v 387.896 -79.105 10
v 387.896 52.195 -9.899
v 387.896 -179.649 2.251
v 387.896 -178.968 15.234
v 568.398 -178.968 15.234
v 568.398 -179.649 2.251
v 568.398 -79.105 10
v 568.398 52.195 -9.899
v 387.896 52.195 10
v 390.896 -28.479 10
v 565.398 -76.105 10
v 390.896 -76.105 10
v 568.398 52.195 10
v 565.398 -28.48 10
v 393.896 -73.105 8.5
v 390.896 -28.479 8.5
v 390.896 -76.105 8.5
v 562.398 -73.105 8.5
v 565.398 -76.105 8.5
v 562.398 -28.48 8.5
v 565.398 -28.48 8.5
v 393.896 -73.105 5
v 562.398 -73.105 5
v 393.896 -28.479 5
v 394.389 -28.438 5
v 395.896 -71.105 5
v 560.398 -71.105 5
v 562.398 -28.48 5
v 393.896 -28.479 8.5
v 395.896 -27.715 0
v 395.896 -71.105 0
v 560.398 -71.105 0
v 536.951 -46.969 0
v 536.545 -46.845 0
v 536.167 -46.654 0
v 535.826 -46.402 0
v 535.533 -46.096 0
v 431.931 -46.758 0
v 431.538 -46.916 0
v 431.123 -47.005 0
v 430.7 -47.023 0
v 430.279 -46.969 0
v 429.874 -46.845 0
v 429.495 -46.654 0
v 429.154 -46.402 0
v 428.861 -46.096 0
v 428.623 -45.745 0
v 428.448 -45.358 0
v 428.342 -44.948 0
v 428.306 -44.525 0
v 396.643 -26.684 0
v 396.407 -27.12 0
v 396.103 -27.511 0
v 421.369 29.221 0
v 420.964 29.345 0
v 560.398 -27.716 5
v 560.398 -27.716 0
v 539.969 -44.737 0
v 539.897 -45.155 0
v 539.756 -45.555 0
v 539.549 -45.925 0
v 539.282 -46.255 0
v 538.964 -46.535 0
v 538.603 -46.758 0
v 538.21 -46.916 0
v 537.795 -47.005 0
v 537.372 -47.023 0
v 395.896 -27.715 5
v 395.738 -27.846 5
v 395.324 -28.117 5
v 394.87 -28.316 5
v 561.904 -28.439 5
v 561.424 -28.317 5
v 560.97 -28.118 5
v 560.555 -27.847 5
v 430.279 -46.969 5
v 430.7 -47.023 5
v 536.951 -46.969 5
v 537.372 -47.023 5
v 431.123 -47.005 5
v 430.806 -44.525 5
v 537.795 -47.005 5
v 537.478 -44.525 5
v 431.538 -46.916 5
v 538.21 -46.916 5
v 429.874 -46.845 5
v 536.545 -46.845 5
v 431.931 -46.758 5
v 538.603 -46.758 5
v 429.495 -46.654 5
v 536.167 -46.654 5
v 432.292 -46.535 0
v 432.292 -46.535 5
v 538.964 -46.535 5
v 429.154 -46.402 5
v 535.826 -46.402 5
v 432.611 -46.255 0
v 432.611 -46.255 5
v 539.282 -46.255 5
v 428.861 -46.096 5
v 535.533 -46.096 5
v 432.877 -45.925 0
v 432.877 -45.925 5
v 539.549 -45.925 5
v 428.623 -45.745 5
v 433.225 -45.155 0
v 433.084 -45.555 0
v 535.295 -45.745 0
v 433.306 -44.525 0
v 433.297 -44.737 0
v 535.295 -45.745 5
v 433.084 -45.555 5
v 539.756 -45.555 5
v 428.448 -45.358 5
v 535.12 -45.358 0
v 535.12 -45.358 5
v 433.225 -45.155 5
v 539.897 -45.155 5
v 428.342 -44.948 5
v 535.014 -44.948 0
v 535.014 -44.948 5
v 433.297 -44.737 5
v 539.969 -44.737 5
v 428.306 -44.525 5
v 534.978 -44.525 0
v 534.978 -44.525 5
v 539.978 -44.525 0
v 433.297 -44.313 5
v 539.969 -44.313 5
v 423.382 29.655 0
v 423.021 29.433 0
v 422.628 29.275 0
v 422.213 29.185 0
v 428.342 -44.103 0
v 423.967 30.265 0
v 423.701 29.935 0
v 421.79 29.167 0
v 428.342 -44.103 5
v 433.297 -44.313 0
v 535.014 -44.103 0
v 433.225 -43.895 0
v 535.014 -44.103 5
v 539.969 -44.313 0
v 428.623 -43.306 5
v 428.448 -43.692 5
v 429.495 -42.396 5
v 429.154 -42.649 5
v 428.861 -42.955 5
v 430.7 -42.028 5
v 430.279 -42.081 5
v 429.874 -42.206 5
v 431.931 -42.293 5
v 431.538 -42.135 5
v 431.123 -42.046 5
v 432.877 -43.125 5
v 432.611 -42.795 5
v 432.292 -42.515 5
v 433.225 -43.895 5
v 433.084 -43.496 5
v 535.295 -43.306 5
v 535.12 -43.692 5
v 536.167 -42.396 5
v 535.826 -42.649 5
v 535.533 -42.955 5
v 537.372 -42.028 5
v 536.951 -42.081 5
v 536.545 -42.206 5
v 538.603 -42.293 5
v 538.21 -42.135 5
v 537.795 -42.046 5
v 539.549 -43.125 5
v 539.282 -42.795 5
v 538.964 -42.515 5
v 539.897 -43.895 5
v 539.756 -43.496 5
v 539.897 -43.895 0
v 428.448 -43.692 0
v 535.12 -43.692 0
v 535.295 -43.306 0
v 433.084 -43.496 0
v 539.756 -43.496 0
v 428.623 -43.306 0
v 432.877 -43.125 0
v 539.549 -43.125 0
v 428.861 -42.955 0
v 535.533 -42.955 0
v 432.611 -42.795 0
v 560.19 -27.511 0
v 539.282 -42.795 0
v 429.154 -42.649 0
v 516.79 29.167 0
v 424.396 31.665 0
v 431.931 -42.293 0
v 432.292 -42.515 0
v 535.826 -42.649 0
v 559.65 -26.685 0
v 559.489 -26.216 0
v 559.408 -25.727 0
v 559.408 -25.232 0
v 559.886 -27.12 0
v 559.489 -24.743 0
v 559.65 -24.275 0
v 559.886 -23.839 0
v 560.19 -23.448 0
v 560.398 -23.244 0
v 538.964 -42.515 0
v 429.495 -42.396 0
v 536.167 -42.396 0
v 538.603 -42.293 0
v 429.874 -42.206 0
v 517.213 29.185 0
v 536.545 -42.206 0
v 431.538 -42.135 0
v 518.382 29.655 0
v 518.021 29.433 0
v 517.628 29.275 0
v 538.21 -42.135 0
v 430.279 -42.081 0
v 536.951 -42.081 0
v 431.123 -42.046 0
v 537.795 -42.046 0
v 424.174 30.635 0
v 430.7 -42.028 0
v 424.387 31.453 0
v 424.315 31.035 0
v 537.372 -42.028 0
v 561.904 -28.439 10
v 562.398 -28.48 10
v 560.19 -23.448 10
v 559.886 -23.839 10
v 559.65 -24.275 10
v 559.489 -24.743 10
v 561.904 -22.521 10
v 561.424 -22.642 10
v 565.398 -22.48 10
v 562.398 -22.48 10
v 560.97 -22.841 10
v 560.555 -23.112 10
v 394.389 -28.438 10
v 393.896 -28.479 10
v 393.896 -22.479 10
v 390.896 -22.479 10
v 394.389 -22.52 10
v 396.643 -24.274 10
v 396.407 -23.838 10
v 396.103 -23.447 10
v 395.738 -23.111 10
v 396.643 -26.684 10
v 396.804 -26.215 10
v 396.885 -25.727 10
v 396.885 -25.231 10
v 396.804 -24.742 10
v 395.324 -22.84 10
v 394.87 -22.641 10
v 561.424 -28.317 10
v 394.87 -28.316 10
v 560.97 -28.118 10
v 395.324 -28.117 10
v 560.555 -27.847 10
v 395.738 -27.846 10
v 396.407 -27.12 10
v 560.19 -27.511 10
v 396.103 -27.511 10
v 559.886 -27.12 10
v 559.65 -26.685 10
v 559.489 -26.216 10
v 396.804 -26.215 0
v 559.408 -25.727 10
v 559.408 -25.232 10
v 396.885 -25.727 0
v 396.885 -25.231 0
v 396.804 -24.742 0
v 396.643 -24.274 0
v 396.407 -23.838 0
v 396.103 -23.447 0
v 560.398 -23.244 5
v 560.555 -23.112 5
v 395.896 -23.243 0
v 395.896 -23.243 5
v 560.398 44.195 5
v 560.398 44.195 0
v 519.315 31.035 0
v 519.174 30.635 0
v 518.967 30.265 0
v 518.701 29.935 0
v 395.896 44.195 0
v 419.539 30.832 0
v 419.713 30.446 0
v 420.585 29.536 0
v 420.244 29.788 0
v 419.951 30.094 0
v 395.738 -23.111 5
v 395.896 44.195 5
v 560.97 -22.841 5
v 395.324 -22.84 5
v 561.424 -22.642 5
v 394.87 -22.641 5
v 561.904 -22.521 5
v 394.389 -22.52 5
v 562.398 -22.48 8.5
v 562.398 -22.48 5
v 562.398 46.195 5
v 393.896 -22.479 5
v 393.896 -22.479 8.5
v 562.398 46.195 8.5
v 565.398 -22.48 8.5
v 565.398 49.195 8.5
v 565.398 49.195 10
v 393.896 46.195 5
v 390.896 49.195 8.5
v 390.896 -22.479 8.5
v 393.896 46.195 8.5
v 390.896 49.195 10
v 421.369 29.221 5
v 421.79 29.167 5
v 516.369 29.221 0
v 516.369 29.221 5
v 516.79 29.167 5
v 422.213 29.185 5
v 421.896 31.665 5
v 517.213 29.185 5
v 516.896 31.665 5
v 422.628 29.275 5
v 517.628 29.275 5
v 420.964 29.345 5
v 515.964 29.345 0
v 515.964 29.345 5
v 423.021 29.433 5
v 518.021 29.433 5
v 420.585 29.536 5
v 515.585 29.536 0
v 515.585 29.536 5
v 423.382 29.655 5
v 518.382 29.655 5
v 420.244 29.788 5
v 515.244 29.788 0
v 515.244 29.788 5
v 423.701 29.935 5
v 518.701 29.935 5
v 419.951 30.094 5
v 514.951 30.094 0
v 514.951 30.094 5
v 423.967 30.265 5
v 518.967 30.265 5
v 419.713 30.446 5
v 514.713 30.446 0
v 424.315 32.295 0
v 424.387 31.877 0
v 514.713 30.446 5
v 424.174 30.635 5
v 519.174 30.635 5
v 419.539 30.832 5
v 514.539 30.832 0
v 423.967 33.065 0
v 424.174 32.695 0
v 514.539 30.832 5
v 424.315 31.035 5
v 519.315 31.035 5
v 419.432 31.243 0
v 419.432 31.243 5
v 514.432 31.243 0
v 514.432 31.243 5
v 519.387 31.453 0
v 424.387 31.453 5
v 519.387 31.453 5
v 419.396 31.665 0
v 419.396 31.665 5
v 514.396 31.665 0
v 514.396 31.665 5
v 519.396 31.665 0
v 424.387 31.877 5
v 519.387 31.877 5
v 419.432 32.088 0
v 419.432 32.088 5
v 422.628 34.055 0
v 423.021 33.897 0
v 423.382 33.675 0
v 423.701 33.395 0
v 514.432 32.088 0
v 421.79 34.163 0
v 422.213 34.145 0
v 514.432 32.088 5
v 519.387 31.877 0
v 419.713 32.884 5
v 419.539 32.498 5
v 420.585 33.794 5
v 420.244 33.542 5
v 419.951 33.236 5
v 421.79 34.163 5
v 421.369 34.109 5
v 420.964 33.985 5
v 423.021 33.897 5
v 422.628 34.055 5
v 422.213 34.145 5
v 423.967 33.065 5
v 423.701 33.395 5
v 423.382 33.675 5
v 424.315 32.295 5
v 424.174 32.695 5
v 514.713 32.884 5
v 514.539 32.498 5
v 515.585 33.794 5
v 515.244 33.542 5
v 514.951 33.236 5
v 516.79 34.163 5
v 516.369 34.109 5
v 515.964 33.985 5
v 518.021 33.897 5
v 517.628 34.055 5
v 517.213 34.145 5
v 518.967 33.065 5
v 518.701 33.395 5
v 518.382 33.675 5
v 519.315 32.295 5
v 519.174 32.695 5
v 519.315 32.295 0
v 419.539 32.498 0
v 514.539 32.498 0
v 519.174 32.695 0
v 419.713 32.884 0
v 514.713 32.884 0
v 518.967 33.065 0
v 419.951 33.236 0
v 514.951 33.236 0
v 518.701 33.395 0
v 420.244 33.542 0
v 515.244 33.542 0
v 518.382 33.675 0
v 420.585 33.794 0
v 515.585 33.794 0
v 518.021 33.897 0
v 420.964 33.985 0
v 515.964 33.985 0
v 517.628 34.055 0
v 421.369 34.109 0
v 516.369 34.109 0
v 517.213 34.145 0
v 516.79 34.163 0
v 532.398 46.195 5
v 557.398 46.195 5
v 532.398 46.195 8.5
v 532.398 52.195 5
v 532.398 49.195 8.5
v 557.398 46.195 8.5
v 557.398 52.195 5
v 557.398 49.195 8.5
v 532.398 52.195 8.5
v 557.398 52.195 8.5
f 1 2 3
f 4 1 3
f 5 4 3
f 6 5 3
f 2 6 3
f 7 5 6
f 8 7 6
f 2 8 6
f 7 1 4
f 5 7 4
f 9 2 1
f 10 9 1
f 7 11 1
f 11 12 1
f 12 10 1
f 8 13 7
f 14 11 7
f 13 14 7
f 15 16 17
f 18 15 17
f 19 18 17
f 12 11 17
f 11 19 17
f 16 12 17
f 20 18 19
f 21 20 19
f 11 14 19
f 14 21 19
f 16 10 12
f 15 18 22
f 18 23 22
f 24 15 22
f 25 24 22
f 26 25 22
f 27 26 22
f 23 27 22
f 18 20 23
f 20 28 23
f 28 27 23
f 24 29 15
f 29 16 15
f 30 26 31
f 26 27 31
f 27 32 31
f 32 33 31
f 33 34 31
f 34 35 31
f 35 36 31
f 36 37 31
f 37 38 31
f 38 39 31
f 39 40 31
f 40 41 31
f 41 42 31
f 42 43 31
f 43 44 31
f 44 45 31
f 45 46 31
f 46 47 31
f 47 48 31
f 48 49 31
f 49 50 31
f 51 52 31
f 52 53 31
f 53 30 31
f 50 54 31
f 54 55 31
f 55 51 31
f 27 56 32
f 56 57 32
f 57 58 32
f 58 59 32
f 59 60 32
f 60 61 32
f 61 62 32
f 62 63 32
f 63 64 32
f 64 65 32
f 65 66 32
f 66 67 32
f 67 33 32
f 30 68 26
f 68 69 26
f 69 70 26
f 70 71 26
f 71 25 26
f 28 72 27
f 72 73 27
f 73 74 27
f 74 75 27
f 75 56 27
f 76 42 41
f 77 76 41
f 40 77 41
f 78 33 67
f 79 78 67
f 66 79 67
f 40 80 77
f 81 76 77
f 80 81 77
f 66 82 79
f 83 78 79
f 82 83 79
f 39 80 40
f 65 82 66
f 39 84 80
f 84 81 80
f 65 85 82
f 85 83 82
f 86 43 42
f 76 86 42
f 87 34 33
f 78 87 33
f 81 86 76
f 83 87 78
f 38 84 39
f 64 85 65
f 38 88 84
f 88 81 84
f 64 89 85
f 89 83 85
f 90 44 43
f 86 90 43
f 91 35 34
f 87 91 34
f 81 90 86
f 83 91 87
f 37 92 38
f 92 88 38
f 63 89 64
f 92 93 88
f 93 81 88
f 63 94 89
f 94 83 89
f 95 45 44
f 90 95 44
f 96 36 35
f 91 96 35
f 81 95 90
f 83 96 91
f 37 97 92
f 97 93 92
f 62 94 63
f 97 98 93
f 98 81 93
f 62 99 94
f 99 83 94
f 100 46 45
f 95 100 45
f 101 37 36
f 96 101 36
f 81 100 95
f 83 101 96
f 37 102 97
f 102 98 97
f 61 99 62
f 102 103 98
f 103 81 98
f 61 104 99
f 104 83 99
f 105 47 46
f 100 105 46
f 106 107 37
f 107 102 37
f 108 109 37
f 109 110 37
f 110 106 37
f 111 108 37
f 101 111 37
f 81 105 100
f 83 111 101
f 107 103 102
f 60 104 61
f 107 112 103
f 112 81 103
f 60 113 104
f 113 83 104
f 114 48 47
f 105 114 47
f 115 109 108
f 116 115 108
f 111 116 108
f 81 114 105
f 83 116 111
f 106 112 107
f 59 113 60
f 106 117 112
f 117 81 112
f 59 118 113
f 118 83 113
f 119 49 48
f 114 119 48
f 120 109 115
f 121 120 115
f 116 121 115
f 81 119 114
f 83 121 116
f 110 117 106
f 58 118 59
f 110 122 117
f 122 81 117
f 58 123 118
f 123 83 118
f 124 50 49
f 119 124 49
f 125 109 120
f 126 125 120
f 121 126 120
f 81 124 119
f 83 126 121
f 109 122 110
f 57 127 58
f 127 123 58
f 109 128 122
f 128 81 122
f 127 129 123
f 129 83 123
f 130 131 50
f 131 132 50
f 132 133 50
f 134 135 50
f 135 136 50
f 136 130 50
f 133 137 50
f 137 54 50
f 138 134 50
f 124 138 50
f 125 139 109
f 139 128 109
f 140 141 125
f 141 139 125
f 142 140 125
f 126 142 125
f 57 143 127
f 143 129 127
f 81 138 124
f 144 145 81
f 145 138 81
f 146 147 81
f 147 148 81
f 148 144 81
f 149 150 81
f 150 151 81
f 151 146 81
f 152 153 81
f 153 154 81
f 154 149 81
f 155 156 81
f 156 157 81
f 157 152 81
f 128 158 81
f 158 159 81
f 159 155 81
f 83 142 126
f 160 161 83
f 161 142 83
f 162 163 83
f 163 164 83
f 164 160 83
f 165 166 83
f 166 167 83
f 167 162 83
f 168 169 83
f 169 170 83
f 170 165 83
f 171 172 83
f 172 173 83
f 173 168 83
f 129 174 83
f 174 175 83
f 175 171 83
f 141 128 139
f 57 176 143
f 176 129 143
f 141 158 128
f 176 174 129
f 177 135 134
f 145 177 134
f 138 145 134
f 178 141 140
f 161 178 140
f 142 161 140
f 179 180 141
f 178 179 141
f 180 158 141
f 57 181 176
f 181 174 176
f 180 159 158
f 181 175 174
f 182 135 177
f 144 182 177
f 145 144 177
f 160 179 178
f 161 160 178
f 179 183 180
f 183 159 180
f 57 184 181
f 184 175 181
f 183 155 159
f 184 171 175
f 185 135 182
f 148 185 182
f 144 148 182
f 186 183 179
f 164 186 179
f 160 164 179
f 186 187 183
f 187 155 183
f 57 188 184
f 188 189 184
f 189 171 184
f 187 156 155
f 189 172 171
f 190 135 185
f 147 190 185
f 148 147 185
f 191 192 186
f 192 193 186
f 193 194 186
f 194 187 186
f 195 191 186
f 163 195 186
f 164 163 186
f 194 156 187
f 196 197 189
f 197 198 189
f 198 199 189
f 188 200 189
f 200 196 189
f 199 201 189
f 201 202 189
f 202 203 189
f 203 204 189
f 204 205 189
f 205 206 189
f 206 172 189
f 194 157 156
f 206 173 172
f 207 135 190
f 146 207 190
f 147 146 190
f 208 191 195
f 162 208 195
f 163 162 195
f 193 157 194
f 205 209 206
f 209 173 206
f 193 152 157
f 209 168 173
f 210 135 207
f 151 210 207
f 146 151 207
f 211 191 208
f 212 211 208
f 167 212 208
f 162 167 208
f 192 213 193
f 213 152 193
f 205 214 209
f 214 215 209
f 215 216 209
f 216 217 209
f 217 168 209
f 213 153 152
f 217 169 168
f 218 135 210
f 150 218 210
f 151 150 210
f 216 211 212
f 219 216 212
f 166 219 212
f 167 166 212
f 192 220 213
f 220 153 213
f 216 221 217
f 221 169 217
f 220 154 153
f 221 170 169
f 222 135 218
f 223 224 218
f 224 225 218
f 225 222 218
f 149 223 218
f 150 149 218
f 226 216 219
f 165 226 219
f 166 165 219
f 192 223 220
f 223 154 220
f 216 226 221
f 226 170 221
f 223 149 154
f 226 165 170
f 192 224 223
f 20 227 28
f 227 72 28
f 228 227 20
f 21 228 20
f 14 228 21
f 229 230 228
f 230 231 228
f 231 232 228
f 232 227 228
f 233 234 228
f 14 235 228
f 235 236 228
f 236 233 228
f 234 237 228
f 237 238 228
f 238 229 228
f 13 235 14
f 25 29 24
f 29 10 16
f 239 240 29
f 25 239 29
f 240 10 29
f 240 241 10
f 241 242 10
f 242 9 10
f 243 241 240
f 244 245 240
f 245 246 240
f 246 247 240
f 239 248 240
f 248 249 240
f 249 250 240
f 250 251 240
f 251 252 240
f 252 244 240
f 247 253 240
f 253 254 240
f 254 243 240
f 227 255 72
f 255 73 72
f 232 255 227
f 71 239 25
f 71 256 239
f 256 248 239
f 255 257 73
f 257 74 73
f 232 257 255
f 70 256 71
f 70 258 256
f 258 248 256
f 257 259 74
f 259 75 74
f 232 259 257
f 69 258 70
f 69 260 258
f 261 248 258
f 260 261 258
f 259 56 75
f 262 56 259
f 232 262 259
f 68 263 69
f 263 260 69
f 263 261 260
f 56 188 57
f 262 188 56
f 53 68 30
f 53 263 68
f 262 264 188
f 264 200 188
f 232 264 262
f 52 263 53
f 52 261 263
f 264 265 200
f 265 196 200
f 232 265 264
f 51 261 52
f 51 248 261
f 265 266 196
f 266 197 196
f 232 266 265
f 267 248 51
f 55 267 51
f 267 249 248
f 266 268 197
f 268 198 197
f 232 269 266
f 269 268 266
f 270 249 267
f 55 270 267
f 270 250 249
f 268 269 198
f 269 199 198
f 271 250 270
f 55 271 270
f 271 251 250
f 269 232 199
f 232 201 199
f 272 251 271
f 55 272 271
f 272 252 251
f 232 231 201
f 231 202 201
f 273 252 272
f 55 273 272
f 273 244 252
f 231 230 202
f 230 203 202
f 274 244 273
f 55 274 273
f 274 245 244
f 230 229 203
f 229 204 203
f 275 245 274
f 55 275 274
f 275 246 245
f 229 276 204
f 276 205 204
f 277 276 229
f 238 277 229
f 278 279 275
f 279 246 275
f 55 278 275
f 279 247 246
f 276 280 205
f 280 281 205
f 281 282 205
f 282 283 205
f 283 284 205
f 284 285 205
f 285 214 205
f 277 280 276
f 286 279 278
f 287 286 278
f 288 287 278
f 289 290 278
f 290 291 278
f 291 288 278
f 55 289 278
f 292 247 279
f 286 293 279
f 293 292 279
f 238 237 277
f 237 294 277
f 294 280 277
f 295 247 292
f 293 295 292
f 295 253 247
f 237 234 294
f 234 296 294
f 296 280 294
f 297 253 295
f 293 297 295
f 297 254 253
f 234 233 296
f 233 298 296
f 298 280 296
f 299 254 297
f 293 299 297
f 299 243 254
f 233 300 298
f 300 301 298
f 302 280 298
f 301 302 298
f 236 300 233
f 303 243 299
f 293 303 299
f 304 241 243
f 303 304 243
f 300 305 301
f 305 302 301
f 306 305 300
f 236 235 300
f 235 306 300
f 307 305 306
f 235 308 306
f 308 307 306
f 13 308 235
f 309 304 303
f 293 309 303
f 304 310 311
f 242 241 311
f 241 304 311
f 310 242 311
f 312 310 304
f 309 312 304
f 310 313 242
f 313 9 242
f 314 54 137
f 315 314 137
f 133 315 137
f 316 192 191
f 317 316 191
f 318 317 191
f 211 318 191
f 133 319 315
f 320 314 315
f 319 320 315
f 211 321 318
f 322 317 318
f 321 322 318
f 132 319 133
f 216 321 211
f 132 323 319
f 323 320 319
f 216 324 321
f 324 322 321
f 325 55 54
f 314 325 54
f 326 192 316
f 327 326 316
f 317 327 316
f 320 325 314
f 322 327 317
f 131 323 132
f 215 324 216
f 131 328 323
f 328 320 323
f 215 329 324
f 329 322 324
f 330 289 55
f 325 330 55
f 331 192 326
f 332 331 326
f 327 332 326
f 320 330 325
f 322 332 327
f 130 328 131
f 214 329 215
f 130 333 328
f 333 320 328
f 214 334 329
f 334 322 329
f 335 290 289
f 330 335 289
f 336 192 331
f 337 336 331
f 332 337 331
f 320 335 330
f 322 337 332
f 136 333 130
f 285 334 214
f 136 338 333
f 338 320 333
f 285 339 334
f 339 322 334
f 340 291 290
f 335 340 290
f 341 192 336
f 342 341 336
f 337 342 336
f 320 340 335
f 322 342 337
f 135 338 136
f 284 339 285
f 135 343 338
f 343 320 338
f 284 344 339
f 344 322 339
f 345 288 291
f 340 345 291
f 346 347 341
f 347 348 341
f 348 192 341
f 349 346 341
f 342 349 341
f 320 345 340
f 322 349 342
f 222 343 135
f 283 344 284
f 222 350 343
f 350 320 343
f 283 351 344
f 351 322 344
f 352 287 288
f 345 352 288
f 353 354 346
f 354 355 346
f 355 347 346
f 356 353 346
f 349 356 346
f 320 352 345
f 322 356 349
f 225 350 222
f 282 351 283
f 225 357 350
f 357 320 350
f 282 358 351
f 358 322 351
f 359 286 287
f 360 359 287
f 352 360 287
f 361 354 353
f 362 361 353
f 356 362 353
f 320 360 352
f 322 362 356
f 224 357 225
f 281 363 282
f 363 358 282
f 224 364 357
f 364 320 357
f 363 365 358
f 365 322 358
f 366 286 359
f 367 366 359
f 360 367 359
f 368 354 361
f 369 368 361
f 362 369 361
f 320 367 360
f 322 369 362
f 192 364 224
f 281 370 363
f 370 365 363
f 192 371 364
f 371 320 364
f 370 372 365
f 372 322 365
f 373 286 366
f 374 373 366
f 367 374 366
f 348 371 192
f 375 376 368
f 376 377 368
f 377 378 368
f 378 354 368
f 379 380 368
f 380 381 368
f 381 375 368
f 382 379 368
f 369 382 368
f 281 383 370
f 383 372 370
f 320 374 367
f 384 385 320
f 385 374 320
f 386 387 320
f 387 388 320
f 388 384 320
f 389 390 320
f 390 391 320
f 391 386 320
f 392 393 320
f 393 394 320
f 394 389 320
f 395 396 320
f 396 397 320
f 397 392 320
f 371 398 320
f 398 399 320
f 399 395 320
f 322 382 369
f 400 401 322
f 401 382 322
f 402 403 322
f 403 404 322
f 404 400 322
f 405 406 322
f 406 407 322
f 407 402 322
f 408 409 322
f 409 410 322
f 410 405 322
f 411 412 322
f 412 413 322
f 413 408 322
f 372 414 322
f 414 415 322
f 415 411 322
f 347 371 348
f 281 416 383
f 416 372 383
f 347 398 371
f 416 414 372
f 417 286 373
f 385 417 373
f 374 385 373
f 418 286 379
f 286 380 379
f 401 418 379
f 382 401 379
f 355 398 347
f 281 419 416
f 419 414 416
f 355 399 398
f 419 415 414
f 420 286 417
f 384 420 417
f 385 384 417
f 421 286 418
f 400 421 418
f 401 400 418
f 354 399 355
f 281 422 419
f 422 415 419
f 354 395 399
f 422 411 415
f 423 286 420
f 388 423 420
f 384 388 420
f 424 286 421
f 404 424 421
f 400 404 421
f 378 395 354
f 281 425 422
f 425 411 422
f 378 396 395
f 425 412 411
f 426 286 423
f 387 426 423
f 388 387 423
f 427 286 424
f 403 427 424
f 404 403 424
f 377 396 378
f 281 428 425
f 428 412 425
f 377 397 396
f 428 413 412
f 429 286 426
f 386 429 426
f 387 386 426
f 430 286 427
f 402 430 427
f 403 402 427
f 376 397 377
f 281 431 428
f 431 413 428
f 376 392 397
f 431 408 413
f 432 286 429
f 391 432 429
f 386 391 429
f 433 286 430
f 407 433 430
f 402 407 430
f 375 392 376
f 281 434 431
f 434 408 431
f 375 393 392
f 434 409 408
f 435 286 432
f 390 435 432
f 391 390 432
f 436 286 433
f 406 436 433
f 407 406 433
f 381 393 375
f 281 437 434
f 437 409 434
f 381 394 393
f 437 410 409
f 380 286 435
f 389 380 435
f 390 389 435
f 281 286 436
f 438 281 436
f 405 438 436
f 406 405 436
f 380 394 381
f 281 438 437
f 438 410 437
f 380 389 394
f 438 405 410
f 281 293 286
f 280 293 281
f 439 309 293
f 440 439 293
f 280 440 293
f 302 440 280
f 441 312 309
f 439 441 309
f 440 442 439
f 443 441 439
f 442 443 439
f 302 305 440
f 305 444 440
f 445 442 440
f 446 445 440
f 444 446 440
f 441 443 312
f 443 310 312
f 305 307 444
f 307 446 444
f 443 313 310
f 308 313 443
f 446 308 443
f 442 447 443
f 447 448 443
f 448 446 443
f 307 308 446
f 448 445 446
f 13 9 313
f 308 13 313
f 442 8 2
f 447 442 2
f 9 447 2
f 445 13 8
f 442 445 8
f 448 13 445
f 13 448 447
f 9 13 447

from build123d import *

# Parameters (mm, degrees)
EXTRUDE_3_DEPTH     = 8.5
EXTRUDE_3_2_DEPTH   = 8.5
SKETCH_4_W          = 180.5019154
SKETCH_4_H          = 131.300307
EXTRUDE_5_DEPTH     = 10
EXTRUDE_6_DEPTH     = 5
SKETCH_8_W          = 25
SKETCH_8_H          = 6
CUT_EXTRUDE_1_DEPTH = 3.5
SKETCH_9_R          = 2.5
EXTRUDE_7_DEPTH     = 5
EXTRUDE_7_2_DEPTH   = 5
EXTRUDE_7_3_DEPTH   = 5
EXTRUDE_7_4_DEPTH   = 5
EXTRUDE_8_DEPTH     = 180.5019154


with BuildPart() as part:
    # Model → 凸台-拉伸3 (new body)
    with BuildSketch(Plane.XY):
        Polygon((565.397621393, -28.479593633), (562.397621393, -28.479593633), (562.397621393, -73.105300633), (393.895705993, -73.105300633), (393.895705993, -28.478893633), (390.895705993, -28.478893633), (390.895705993, -76.105300633), (565.397621393, -76.105300633), align=None)
    extrude(amount=EXTRUDE_3_DEPTH)



with BuildPart() as body_2:
    # Model → Extrude 3 2 (new body)
    with BuildSketch(Plane.XY):
        Polygon((393.895705993, -22.478893633), (393.895705993, 46.195006367), (562.397621393, 46.195006367), (562.397621393, -22.479593633), (565.397621393, -22.479593633), (565.397621393, 49.195006367), (390.895705993, 49.195006367), (390.895705993, -22.478893633), align=None)
    extrude(amount=EXTRUDE_3_2_DEPTH)


with BuildPart() as part_1:
    add(part.part)

    add(body_2.part)  # 凸台-拉伸5 merges body 2
    # 草图4 → 凸台-拉伸5 (add)
    with BuildSketch(Plane(origin=(0, 0, 0), x_dir=(-1, 0, 0), z_dir=(0, 0, -1))):
        with Locations((-478.146663693, -13.455147133)):
            Rectangle(SKETCH_4_W, SKETCH_4_H)
        with BuildLine():
            ThreePointArc((-562.397621393, -28.479593633), (-559.397621393, -25.479593633), (-562.397621393, -22.479593633))
            Line((-562.397621393, -22.479593633), (-565.397621393, -22.479593633))
            Line((-565.397621393, -22.479593633), (-565.397621393, 49.195006367))
            Line((-565.397621393, 49.195006367), (-390.895705993, 49.195006367))
            Line((-390.895705993, 49.195006367), (-390.895705993, -22.478893633))
            Line((-390.895705993, -22.478893633), (-393.895705993, -22.478893633))
            ThreePointArc((-393.895705993, -22.478893633), (-396.895705993, -25.478893633), (-393.895705993, -28.478893633))
            Line((-393.895705993, -28.478893633), (-390.895705993, -28.478893633))
            Line((-390.895705993, -28.478893633), (-390.895705993, -76.105300633))
            Line((-390.895705993, -76.105300633), (-565.397621393, -76.105300633))
            Line((-565.397621393, -76.105300633), (-565.397621393, -28.479593633))
            Line((-565.397621393, -28.479593633), (-562.397621393, -28.479593633))
        make_face(mode=Mode.SUBTRACT)
    extrude(amount=-EXTRUDE_5_DEPTH)

    # 草图5 → 凸台-拉伸6 (add)
    with BuildSketch(Plane(origin=(0, 0, 0), x_dir=(-1, 0, 0), z_dir=(0, 0, -1))):
        with BuildLine():
            Line((-562.397621393, 46.195006367), (-562.397621393, -22.479593633))
            ThreePointArc((-562.397621393, -22.479593633), (-561.327155124, -22.677076556), (-560.397621393, -23.243525656))
            Line((-560.397621393, -23.243525656), (-560.397621393, 44.195006367))
            Line((-560.397621393, 44.195006367), (-395.895705993, 44.195006367))
            Line((-395.895705993, 44.195006367), (-395.895705993, -23.242825656))
            ThreePointArc((-395.895705993, -23.242825656), (-394.966172262, -22.676376556), (-393.895705993, -22.478893633))
            Line((-393.895705993, -22.478893633), (-393.895705993, 46.195006367))
            Line((-393.895705993, 46.195006367), (-562.397621393, 46.195006367))
        make_face()
        with BuildLine():
            Line((-560.397621393, -71.105300633), (-560.397621393, -27.715661611))
            ThreePointArc((-560.397621393, -27.715661611), (-561.327155124, -28.28211071), (-562.397621393, -28.479593633))
            Line((-562.397621393, -28.479593633), (-562.397621393, -73.105300633))
            Line((-562.397621393, -73.105300633), (-393.895705993, -73.105300633))
            Line((-393.895705993, -73.105300633), (-393.895705993, -28.478893633))
            ThreePointArc((-393.895705993, -28.478893633), (-394.966172262, -28.28141071), (-395.895705993, -27.714961611))
            Line((-395.895705993, -27.714961611), (-395.895705993, -71.105300633))
            Line((-395.895705993, -71.105300633), (-560.397621393, -71.105300633))
        make_face()
    extrude(amount=-EXTRUDE_6_DEPTH)

    # 草图8 → 切除-拉伸1 (cut)
    with BuildSketch(Plane.XY.offset(5)):
        with Locations((544.897621393, 49.195006367)):
            Rectangle(SKETCH_8_W, SKETCH_8_H)
    extrude(amount=CUT_EXTRUDE_1_DEPTH, mode=Mode.SUBTRACT)



with BuildPart() as body_2_2:
    # 草图9 → 凸台-拉伸7 (new body)
    with BuildSketch(Plane(origin=(0, 0, 0), x_dir=(-1, 0, 0), z_dir=(0, 0, -1))):
        with Locations((-430.805705993, -44.525300633)):
            Circle(SKETCH_9_R)
    extrude(amount=-EXTRUDE_7_DEPTH)


with BuildPart() as body_3:
    # 草图9 → Extrude 7 2 (new body)
    with BuildSketch(Plane(origin=(0, 0, 0), x_dir=(-1, 0, 0), z_dir=(0, 0, -1))):
        with Locations((-537.477621393, -44.525300633)):
            Circle(SKETCH_9_R)
    extrude(amount=-EXTRUDE_7_2_DEPTH)


with BuildPart() as body_4:
    # 草图9 → Extrude 7 3 (new body)
    with BuildSketch(Plane(origin=(0, 0, 0), x_dir=(-1, 0, 0), z_dir=(0, 0, -1))):
        with Locations((-421.895705993, 31.665006367)):
            Circle(SKETCH_9_R)
    extrude(amount=-EXTRUDE_7_3_DEPTH)


with BuildPart() as body_5:
    # 草图9 → Extrude 7 4 (new body)
    with BuildSketch(Plane(origin=(0, 0, 0), x_dir=(-1, 0, 0), z_dir=(0, 0, -1))):
        with Locations((-516.895705993, 31.665006367)):
            Circle(SKETCH_9_R)
    extrude(amount=-EXTRUDE_7_4_DEPTH)


with BuildPart() as part_2:
    add(part_1.part)

    add(body_2_2.part)  # 凸台-拉伸8 merges body 2 2

    add(body_3.part)  # 凸台-拉伸8 merges body 3

    add(body_4.part)  # 凸台-拉伸8 merges body 4

    add(body_5.part)  # 凸台-拉伸8 merges body 5
    # 草图10 → 凸台-拉伸8 (add)
    with BuildSketch(Plane.ZY.offset(-387.895705993)):
        Polygon((2.251411672, -179.64862154), (-9.898998007, 52.195006367), (0, 52.195006367), (0, -79.105300633), (10, -79.105300633), (15.233595624, -178.968254109), align=None)
    extrude(amount=-EXTRUDE_8_DEPTH)


solid = part_2.part
